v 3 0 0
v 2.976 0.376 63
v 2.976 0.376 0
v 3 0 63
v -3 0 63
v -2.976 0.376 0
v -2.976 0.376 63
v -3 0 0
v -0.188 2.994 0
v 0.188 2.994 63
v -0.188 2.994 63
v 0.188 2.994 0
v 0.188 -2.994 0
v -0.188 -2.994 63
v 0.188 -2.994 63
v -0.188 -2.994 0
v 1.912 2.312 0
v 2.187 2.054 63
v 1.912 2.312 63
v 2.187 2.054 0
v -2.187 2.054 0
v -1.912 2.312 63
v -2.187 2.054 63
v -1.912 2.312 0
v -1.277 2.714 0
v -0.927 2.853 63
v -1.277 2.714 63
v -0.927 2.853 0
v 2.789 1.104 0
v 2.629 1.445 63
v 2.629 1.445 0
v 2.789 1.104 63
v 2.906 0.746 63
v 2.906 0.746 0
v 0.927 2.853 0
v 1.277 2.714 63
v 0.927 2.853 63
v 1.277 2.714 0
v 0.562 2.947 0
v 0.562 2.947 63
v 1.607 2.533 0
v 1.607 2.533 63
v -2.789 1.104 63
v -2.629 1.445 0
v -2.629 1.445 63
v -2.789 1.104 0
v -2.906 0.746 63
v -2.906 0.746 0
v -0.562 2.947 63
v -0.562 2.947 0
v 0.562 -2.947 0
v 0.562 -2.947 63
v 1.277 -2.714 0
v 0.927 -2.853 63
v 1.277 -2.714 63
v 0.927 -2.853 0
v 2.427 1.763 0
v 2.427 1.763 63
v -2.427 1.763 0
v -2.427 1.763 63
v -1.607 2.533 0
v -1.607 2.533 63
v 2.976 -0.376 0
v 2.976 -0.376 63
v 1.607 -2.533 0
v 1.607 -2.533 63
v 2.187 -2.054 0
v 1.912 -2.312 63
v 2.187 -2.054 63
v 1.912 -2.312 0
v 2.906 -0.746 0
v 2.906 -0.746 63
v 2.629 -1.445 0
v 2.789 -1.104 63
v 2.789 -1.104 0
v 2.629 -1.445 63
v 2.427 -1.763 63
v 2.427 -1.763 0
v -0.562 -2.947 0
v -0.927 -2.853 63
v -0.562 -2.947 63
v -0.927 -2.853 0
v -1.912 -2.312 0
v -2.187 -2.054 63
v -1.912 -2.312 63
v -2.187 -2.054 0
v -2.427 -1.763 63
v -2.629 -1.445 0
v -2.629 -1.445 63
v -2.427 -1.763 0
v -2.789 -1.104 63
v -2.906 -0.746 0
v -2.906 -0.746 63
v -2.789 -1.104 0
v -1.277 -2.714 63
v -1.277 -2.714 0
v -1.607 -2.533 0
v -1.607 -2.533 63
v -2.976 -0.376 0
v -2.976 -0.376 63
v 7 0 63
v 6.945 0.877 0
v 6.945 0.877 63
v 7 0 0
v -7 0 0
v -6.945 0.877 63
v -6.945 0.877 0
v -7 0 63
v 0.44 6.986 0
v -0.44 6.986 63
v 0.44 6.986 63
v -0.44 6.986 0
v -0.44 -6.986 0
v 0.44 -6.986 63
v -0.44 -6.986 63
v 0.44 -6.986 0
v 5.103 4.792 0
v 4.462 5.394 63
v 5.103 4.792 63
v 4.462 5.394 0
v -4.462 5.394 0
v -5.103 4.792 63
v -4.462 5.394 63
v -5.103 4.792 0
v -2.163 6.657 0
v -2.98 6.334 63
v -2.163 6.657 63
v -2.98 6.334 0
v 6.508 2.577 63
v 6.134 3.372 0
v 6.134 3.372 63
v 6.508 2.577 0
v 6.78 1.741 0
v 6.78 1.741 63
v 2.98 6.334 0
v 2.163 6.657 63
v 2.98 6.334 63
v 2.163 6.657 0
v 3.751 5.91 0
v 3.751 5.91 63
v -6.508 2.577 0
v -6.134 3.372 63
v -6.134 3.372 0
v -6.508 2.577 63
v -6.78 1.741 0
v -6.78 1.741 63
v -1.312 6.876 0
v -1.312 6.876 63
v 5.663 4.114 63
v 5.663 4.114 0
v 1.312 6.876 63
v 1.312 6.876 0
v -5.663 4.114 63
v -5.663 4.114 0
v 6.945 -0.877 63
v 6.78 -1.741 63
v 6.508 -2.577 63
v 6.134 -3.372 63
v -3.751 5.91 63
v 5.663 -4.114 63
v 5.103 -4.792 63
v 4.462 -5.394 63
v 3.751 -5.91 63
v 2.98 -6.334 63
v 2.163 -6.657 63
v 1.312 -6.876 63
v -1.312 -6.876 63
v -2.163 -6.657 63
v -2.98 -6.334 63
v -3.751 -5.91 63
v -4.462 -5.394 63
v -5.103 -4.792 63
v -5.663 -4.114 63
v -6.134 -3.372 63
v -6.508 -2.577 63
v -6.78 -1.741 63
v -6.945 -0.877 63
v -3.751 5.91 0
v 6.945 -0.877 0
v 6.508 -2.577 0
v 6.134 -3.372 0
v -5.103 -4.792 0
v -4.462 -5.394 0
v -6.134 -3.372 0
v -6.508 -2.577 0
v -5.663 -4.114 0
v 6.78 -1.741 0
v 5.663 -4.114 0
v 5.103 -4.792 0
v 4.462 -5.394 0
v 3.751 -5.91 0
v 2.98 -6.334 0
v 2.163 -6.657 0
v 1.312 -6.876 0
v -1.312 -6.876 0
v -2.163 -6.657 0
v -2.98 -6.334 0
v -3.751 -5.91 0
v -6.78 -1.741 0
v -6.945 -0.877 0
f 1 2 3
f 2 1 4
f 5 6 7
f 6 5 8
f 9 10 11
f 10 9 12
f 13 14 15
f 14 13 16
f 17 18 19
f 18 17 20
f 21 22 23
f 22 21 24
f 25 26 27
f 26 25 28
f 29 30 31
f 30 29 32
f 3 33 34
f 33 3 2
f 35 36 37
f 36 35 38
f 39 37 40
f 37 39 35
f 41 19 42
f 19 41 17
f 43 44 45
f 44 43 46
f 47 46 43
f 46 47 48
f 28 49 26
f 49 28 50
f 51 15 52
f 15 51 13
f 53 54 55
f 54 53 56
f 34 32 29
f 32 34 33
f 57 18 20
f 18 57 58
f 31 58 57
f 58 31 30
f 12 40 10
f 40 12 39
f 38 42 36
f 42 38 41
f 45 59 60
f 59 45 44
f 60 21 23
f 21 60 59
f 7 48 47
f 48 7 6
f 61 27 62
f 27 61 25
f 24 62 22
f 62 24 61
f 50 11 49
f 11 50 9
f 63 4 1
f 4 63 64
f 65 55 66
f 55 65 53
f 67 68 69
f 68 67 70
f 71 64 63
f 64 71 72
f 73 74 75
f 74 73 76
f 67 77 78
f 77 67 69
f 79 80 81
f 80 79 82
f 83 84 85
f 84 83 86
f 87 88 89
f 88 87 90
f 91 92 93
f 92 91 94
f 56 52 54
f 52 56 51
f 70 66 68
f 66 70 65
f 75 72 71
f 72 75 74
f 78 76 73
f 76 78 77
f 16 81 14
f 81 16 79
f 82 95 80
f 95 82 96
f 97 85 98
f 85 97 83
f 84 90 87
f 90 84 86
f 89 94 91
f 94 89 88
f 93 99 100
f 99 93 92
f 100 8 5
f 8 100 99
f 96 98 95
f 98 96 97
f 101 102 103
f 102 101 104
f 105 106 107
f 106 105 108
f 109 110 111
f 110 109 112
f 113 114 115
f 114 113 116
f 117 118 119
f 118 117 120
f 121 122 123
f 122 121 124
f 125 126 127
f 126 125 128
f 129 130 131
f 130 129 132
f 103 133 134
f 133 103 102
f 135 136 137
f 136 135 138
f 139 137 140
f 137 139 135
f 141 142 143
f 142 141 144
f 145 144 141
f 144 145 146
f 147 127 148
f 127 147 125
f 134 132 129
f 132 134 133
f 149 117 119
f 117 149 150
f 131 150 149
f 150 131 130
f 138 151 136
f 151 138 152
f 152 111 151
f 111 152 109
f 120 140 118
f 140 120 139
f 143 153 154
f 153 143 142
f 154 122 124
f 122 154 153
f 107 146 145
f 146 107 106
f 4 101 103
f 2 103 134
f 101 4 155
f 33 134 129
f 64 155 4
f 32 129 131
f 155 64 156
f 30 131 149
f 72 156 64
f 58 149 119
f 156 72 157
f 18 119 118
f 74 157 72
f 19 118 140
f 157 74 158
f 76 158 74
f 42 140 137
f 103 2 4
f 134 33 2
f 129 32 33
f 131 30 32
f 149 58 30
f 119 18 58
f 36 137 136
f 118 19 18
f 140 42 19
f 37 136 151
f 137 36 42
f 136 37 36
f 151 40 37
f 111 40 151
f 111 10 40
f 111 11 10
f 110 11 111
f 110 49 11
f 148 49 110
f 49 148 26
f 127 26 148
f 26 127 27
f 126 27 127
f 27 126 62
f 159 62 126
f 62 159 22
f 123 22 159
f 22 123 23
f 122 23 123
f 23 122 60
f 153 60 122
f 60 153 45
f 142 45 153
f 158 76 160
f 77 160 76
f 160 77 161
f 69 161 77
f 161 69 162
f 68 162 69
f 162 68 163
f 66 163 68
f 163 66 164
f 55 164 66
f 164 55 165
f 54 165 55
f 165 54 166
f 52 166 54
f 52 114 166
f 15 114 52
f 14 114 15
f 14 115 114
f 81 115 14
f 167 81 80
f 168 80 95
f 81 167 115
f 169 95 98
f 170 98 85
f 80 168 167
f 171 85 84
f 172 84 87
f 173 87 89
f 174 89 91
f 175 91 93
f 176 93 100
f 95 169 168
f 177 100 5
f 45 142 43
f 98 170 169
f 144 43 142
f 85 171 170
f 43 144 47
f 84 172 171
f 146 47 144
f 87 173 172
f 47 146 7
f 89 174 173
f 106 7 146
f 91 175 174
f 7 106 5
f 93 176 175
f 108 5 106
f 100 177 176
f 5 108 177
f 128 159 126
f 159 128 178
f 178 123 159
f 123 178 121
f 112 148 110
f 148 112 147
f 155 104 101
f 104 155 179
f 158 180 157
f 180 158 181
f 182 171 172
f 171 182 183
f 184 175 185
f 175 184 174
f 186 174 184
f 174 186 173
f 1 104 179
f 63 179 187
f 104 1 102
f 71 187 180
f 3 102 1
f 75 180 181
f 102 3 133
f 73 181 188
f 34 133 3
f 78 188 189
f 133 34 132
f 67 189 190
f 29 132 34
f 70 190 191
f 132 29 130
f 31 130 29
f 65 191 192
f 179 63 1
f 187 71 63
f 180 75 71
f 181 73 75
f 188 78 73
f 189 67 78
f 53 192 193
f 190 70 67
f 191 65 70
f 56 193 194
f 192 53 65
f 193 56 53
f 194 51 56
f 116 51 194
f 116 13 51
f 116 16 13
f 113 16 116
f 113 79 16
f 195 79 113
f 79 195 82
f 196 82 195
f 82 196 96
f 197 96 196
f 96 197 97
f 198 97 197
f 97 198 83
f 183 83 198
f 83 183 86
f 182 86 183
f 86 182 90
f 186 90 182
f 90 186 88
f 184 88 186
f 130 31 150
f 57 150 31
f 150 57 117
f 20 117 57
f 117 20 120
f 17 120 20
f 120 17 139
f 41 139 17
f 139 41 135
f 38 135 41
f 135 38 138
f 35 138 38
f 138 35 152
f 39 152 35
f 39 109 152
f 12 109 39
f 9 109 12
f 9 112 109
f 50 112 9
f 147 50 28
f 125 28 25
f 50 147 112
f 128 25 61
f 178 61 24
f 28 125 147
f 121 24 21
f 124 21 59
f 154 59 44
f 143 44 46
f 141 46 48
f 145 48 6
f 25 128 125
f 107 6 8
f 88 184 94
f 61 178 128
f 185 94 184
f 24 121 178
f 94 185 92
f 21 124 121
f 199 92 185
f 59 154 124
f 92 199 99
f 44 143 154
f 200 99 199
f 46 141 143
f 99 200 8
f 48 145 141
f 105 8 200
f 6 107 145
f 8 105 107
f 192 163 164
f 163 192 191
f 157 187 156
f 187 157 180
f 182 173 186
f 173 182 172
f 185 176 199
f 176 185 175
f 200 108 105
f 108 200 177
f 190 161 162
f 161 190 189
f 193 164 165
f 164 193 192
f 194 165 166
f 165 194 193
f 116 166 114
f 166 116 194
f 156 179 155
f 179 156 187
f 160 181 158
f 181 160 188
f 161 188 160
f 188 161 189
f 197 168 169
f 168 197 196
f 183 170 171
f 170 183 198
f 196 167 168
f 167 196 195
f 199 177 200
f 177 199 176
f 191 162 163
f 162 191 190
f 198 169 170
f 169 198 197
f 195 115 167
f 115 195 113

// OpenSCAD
$fn = 50;


difference() {
	union() {
		cylinder(h = 63, r = 7.0000000000);
	}
	union() {
		translate(v = [0, 0, -100]) {
			cylinder(h = 200, r = 3.0000000000);
		}
	}
}
